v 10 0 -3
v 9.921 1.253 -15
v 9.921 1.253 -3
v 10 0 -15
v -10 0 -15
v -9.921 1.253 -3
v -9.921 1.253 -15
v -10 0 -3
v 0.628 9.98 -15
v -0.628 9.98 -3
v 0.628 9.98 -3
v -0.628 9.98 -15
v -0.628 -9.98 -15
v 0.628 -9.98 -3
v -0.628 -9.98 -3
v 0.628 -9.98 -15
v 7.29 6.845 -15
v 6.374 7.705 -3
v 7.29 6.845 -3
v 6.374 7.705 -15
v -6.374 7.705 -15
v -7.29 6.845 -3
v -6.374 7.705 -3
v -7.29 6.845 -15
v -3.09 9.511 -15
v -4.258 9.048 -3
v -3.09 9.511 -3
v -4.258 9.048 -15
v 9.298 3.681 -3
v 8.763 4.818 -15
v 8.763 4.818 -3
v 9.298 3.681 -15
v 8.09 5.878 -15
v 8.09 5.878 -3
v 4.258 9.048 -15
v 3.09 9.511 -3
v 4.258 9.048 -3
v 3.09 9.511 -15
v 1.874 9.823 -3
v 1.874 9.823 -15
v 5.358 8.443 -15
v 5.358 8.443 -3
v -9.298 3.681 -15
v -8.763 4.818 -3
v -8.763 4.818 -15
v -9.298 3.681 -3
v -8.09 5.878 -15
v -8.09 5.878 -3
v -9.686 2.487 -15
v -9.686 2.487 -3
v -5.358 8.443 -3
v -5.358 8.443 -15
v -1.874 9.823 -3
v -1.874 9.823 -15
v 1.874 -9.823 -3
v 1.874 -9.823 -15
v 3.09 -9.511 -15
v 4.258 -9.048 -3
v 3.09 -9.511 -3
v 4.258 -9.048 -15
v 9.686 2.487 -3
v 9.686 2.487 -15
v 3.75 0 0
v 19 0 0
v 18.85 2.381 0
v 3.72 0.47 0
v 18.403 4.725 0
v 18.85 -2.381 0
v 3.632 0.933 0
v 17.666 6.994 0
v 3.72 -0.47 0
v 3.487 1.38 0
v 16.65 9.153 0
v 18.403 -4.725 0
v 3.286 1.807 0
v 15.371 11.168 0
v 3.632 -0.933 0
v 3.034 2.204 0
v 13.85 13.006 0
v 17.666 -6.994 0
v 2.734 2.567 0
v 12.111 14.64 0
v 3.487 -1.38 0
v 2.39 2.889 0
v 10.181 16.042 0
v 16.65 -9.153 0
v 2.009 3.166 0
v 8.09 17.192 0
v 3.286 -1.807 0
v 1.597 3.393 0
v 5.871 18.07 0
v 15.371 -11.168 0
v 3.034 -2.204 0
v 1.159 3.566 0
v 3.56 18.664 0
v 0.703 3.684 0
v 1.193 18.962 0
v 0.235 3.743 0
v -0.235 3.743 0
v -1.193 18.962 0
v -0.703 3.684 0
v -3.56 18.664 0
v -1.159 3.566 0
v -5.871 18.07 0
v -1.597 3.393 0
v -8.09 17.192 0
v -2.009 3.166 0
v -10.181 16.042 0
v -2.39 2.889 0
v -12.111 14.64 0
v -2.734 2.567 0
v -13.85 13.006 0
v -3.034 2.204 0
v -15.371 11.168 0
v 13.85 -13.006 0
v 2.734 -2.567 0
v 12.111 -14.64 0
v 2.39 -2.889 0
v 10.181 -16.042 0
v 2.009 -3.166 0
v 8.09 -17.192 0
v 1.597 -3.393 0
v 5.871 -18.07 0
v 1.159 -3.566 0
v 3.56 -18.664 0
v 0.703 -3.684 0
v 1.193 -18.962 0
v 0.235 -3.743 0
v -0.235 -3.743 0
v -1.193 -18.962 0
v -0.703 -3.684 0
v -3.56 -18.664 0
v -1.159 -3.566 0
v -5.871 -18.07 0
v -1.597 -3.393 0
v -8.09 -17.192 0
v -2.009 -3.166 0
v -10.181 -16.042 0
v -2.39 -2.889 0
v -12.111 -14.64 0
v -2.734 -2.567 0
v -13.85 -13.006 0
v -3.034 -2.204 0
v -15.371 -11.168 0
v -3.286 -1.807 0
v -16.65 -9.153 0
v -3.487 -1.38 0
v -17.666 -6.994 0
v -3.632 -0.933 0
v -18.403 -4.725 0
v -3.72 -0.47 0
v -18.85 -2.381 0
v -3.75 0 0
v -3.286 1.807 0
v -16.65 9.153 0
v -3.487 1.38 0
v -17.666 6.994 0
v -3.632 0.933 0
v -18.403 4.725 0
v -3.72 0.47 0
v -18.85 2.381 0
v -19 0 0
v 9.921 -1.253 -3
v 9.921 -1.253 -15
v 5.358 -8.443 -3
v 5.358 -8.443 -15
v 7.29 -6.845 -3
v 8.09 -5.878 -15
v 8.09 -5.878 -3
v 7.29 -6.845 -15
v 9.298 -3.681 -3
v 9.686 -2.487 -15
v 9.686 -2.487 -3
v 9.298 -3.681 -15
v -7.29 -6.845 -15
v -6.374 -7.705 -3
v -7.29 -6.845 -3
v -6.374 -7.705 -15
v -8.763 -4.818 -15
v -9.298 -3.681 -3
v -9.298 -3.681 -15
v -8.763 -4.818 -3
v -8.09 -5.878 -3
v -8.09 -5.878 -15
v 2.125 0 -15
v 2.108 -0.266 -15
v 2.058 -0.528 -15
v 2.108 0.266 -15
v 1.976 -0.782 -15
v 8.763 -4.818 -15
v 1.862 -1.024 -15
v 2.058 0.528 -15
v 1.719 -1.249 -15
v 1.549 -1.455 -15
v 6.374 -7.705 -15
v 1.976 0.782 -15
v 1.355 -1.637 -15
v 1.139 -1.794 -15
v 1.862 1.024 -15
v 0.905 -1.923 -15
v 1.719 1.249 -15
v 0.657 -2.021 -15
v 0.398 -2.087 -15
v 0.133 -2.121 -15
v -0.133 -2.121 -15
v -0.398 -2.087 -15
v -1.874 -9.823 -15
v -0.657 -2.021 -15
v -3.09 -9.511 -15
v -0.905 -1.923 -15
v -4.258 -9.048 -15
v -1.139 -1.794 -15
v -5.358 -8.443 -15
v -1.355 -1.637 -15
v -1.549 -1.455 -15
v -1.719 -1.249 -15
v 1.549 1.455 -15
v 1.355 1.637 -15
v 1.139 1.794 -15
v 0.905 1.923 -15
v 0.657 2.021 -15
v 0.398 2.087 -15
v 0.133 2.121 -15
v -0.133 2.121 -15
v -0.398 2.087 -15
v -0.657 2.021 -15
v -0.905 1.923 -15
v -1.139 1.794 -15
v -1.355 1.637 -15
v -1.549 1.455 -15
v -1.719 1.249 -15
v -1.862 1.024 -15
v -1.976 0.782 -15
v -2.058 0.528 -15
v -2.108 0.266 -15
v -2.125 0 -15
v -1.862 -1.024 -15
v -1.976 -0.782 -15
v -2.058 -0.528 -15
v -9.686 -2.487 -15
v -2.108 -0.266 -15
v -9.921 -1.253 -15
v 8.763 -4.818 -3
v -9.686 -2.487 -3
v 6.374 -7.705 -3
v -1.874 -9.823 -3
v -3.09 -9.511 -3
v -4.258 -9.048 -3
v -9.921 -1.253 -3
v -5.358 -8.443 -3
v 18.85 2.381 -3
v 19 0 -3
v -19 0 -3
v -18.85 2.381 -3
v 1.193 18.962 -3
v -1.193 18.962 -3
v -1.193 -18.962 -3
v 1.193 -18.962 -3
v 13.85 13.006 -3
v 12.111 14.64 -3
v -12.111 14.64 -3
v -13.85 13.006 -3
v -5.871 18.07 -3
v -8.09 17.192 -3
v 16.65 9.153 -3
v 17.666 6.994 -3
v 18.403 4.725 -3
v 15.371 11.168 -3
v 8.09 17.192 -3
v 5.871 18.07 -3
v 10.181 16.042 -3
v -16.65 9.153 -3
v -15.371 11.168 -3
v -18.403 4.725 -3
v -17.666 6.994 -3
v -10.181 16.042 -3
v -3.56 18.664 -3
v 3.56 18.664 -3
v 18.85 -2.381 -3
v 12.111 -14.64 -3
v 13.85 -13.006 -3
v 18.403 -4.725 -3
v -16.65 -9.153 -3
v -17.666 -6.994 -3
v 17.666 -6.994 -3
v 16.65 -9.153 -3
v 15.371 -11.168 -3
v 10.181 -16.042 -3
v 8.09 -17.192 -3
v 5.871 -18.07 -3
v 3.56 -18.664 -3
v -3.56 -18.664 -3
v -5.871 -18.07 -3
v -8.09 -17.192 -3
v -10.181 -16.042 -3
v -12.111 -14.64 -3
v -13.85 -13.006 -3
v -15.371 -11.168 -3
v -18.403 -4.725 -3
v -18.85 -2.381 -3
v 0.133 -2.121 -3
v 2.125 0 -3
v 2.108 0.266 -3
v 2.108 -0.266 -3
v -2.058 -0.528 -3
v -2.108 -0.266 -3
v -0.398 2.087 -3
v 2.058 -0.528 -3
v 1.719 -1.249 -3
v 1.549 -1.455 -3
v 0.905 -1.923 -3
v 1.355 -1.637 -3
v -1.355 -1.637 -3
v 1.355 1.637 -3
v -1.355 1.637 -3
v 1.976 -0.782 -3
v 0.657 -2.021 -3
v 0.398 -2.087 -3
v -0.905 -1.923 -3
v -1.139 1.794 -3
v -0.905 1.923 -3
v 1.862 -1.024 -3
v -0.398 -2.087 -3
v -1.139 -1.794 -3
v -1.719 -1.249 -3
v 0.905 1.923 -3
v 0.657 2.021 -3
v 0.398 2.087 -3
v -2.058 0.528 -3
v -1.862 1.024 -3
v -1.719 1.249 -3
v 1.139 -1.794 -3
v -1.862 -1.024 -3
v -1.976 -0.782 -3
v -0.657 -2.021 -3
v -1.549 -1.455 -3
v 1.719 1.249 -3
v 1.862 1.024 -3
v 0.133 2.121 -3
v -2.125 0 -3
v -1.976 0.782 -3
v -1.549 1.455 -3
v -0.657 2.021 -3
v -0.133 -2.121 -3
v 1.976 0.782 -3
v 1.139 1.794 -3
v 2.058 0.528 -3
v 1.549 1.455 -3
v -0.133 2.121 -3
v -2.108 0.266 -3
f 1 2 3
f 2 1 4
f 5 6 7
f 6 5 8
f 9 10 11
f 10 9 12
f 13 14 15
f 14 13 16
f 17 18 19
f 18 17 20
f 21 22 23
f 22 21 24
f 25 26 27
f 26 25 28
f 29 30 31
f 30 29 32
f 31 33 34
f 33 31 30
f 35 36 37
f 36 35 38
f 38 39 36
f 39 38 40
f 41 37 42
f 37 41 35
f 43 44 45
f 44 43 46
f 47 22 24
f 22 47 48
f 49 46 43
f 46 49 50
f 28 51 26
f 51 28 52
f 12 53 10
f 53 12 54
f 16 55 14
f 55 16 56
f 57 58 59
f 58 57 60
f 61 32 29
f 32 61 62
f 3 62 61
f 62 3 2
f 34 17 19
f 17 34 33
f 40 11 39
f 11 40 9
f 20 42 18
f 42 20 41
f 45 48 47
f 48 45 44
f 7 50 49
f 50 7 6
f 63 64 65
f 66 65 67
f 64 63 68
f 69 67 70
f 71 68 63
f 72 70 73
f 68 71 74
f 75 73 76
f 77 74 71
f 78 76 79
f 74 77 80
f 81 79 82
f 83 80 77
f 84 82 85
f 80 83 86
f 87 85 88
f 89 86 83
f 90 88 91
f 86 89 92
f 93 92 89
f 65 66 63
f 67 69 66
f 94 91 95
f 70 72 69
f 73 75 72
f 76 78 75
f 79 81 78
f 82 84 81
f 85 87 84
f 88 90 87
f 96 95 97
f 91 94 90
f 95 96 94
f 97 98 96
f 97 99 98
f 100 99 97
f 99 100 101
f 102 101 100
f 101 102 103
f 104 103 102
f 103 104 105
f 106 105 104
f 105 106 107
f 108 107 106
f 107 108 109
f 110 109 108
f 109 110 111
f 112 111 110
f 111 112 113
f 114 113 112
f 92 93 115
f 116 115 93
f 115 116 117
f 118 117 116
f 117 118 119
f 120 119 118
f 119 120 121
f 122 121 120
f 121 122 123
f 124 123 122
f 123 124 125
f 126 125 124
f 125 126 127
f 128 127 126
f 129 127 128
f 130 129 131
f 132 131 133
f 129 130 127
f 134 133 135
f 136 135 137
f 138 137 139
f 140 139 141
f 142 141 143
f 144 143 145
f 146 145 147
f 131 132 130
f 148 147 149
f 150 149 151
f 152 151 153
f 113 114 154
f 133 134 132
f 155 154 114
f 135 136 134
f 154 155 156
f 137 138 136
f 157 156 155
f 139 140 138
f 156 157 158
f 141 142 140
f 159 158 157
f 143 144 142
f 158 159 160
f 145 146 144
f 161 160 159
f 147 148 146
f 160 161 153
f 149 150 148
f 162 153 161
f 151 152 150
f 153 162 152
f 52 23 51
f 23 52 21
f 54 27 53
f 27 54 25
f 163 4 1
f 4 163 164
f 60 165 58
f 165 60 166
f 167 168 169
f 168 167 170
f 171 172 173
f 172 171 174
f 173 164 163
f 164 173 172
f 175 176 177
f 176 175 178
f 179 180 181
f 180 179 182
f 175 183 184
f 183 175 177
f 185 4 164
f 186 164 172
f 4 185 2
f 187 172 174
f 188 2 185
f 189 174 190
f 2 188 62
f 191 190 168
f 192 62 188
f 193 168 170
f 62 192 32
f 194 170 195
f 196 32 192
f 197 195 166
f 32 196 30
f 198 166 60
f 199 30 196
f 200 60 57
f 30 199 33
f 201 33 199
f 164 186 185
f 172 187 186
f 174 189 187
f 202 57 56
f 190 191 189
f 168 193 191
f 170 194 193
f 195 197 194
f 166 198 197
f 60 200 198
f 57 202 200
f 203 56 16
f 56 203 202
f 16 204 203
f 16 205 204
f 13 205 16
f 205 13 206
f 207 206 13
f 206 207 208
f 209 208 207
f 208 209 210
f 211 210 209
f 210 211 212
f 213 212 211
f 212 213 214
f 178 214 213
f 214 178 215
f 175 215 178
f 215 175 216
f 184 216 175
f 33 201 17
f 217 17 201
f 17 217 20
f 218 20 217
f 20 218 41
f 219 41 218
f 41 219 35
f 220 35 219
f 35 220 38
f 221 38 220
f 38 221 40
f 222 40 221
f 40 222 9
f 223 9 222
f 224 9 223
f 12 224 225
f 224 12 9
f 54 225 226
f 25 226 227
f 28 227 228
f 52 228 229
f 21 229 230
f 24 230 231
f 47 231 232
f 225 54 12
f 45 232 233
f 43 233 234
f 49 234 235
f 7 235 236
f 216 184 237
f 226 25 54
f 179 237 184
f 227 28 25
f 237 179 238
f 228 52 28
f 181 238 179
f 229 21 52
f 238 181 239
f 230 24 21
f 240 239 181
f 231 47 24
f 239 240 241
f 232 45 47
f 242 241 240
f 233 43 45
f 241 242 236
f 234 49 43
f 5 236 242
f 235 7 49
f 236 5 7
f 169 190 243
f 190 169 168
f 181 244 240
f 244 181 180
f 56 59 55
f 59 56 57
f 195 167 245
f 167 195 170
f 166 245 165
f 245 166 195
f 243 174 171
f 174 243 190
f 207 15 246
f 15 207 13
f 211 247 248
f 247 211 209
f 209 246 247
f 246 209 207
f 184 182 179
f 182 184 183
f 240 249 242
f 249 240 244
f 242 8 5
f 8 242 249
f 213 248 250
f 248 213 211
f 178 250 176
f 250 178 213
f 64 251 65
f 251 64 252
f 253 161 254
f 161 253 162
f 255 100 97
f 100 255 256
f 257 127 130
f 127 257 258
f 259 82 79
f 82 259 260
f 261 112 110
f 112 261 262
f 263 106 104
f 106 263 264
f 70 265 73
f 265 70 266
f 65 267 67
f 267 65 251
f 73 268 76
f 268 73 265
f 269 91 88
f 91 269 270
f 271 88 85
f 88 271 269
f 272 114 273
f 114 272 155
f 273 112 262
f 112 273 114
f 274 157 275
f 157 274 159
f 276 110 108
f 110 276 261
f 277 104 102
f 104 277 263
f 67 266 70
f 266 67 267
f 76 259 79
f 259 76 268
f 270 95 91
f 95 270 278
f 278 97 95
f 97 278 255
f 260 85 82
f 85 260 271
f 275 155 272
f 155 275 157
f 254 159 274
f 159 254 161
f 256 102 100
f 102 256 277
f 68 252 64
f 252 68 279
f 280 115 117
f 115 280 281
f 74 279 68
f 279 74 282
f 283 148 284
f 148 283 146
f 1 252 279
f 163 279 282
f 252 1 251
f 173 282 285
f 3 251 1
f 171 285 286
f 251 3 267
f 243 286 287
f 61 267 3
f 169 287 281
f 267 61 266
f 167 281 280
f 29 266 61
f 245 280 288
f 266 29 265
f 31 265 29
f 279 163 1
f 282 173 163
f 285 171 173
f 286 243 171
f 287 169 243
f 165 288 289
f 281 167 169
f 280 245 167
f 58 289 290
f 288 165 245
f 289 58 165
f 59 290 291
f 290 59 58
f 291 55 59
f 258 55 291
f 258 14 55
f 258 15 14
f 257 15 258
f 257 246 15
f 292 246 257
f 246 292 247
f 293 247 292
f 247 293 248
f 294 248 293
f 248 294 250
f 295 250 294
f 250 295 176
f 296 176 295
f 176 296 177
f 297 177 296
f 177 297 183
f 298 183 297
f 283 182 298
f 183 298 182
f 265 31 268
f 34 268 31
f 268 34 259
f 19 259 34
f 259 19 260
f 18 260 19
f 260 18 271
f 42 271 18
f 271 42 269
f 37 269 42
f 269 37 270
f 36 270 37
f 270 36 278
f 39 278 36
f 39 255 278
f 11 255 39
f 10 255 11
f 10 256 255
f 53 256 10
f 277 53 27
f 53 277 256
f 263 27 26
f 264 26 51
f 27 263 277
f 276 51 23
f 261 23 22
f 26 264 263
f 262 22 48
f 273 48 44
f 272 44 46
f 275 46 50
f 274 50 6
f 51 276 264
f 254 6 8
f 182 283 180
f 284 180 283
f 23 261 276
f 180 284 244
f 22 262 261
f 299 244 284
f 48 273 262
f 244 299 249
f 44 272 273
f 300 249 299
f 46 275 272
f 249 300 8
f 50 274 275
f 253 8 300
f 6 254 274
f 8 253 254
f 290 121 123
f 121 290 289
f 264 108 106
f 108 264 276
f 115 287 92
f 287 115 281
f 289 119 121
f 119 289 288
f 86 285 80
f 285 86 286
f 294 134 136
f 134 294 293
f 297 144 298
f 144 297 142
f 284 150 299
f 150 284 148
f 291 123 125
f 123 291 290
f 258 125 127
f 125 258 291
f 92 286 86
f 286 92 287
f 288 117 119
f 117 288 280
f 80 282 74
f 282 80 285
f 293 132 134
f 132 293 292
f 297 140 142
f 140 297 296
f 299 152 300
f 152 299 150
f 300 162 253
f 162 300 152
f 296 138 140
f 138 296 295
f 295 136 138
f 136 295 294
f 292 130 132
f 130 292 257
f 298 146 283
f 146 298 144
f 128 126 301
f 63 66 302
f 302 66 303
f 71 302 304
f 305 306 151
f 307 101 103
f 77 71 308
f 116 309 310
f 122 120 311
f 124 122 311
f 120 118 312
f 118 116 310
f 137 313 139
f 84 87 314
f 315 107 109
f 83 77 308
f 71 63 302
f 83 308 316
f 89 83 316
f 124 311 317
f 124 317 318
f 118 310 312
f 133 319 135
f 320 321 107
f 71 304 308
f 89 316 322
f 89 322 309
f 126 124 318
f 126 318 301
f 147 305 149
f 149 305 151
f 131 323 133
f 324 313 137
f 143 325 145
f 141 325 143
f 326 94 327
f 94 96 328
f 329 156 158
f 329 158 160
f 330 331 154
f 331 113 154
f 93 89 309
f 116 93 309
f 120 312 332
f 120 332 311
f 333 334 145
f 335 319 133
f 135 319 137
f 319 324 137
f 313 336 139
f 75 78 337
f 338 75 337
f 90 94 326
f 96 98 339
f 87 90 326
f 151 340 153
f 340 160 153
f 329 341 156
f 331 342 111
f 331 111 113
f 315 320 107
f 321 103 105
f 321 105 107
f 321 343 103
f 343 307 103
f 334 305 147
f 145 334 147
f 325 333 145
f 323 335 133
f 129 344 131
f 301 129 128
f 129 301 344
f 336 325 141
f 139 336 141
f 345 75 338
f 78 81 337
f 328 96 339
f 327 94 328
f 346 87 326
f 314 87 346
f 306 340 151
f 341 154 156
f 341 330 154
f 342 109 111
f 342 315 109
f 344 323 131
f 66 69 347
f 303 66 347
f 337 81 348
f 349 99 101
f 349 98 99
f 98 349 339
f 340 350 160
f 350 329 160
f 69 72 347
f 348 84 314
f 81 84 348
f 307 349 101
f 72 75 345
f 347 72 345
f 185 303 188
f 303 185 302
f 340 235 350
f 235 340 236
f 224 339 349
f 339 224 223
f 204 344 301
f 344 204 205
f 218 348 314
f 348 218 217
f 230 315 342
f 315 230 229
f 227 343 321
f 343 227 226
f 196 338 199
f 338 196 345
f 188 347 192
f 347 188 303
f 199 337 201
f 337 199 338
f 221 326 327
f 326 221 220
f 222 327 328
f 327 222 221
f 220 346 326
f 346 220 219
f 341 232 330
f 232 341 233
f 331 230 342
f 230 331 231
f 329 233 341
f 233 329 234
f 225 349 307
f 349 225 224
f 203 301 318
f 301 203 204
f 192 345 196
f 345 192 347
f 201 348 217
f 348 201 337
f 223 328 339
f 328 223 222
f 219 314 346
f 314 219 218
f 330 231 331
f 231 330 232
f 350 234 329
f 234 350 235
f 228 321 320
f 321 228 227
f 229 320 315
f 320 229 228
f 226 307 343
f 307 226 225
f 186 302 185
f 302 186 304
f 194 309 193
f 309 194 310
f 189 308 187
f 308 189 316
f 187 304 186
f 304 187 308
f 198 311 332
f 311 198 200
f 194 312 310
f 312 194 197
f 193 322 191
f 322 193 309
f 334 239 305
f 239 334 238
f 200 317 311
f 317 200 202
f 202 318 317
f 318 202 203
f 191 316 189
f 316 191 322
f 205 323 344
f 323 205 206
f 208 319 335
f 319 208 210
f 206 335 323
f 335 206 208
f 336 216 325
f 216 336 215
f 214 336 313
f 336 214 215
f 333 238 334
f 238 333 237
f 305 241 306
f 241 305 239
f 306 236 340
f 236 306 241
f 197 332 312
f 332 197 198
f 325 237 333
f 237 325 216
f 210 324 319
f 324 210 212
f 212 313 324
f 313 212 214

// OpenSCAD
$fn = 50;


difference() {
	union() {
		translate(v = [0, 0, -15.0000000000]) {
			cylinder(h = 15, r = 10.0000000000);
		}
		translate(v = [0, 0, -3.0000000000]) {
			cylinder(h = 3, r = 19.0000000000);
		}
	}
	union() {
		translate(v = [0, 0, 0]) {
			rotate(a = [0, 0, 0]) {
				difference() {
					union() {
						#translate(v = [0, 0, -15.0000000000]) {
							cylinder(h = 15, r = 2.0000000000);
						}
						#translate(v = [0, 0, -3]) {
							cylinder(h = 3, r = 10.0000000000, r1 = 2.1250000000, r2 = 3.7500000000);
						}
						#translate(v = [0, 0, -15.0000000000]) {
							cylinder(h = 15, r = 2.1250000000);
						}
						#translate(v = [0, 0, -15.0000000000]) {
							cylinder(h = 15, r = 2.0000000000);
						}
					}
					union();
				}
			}
		}
	}
}
